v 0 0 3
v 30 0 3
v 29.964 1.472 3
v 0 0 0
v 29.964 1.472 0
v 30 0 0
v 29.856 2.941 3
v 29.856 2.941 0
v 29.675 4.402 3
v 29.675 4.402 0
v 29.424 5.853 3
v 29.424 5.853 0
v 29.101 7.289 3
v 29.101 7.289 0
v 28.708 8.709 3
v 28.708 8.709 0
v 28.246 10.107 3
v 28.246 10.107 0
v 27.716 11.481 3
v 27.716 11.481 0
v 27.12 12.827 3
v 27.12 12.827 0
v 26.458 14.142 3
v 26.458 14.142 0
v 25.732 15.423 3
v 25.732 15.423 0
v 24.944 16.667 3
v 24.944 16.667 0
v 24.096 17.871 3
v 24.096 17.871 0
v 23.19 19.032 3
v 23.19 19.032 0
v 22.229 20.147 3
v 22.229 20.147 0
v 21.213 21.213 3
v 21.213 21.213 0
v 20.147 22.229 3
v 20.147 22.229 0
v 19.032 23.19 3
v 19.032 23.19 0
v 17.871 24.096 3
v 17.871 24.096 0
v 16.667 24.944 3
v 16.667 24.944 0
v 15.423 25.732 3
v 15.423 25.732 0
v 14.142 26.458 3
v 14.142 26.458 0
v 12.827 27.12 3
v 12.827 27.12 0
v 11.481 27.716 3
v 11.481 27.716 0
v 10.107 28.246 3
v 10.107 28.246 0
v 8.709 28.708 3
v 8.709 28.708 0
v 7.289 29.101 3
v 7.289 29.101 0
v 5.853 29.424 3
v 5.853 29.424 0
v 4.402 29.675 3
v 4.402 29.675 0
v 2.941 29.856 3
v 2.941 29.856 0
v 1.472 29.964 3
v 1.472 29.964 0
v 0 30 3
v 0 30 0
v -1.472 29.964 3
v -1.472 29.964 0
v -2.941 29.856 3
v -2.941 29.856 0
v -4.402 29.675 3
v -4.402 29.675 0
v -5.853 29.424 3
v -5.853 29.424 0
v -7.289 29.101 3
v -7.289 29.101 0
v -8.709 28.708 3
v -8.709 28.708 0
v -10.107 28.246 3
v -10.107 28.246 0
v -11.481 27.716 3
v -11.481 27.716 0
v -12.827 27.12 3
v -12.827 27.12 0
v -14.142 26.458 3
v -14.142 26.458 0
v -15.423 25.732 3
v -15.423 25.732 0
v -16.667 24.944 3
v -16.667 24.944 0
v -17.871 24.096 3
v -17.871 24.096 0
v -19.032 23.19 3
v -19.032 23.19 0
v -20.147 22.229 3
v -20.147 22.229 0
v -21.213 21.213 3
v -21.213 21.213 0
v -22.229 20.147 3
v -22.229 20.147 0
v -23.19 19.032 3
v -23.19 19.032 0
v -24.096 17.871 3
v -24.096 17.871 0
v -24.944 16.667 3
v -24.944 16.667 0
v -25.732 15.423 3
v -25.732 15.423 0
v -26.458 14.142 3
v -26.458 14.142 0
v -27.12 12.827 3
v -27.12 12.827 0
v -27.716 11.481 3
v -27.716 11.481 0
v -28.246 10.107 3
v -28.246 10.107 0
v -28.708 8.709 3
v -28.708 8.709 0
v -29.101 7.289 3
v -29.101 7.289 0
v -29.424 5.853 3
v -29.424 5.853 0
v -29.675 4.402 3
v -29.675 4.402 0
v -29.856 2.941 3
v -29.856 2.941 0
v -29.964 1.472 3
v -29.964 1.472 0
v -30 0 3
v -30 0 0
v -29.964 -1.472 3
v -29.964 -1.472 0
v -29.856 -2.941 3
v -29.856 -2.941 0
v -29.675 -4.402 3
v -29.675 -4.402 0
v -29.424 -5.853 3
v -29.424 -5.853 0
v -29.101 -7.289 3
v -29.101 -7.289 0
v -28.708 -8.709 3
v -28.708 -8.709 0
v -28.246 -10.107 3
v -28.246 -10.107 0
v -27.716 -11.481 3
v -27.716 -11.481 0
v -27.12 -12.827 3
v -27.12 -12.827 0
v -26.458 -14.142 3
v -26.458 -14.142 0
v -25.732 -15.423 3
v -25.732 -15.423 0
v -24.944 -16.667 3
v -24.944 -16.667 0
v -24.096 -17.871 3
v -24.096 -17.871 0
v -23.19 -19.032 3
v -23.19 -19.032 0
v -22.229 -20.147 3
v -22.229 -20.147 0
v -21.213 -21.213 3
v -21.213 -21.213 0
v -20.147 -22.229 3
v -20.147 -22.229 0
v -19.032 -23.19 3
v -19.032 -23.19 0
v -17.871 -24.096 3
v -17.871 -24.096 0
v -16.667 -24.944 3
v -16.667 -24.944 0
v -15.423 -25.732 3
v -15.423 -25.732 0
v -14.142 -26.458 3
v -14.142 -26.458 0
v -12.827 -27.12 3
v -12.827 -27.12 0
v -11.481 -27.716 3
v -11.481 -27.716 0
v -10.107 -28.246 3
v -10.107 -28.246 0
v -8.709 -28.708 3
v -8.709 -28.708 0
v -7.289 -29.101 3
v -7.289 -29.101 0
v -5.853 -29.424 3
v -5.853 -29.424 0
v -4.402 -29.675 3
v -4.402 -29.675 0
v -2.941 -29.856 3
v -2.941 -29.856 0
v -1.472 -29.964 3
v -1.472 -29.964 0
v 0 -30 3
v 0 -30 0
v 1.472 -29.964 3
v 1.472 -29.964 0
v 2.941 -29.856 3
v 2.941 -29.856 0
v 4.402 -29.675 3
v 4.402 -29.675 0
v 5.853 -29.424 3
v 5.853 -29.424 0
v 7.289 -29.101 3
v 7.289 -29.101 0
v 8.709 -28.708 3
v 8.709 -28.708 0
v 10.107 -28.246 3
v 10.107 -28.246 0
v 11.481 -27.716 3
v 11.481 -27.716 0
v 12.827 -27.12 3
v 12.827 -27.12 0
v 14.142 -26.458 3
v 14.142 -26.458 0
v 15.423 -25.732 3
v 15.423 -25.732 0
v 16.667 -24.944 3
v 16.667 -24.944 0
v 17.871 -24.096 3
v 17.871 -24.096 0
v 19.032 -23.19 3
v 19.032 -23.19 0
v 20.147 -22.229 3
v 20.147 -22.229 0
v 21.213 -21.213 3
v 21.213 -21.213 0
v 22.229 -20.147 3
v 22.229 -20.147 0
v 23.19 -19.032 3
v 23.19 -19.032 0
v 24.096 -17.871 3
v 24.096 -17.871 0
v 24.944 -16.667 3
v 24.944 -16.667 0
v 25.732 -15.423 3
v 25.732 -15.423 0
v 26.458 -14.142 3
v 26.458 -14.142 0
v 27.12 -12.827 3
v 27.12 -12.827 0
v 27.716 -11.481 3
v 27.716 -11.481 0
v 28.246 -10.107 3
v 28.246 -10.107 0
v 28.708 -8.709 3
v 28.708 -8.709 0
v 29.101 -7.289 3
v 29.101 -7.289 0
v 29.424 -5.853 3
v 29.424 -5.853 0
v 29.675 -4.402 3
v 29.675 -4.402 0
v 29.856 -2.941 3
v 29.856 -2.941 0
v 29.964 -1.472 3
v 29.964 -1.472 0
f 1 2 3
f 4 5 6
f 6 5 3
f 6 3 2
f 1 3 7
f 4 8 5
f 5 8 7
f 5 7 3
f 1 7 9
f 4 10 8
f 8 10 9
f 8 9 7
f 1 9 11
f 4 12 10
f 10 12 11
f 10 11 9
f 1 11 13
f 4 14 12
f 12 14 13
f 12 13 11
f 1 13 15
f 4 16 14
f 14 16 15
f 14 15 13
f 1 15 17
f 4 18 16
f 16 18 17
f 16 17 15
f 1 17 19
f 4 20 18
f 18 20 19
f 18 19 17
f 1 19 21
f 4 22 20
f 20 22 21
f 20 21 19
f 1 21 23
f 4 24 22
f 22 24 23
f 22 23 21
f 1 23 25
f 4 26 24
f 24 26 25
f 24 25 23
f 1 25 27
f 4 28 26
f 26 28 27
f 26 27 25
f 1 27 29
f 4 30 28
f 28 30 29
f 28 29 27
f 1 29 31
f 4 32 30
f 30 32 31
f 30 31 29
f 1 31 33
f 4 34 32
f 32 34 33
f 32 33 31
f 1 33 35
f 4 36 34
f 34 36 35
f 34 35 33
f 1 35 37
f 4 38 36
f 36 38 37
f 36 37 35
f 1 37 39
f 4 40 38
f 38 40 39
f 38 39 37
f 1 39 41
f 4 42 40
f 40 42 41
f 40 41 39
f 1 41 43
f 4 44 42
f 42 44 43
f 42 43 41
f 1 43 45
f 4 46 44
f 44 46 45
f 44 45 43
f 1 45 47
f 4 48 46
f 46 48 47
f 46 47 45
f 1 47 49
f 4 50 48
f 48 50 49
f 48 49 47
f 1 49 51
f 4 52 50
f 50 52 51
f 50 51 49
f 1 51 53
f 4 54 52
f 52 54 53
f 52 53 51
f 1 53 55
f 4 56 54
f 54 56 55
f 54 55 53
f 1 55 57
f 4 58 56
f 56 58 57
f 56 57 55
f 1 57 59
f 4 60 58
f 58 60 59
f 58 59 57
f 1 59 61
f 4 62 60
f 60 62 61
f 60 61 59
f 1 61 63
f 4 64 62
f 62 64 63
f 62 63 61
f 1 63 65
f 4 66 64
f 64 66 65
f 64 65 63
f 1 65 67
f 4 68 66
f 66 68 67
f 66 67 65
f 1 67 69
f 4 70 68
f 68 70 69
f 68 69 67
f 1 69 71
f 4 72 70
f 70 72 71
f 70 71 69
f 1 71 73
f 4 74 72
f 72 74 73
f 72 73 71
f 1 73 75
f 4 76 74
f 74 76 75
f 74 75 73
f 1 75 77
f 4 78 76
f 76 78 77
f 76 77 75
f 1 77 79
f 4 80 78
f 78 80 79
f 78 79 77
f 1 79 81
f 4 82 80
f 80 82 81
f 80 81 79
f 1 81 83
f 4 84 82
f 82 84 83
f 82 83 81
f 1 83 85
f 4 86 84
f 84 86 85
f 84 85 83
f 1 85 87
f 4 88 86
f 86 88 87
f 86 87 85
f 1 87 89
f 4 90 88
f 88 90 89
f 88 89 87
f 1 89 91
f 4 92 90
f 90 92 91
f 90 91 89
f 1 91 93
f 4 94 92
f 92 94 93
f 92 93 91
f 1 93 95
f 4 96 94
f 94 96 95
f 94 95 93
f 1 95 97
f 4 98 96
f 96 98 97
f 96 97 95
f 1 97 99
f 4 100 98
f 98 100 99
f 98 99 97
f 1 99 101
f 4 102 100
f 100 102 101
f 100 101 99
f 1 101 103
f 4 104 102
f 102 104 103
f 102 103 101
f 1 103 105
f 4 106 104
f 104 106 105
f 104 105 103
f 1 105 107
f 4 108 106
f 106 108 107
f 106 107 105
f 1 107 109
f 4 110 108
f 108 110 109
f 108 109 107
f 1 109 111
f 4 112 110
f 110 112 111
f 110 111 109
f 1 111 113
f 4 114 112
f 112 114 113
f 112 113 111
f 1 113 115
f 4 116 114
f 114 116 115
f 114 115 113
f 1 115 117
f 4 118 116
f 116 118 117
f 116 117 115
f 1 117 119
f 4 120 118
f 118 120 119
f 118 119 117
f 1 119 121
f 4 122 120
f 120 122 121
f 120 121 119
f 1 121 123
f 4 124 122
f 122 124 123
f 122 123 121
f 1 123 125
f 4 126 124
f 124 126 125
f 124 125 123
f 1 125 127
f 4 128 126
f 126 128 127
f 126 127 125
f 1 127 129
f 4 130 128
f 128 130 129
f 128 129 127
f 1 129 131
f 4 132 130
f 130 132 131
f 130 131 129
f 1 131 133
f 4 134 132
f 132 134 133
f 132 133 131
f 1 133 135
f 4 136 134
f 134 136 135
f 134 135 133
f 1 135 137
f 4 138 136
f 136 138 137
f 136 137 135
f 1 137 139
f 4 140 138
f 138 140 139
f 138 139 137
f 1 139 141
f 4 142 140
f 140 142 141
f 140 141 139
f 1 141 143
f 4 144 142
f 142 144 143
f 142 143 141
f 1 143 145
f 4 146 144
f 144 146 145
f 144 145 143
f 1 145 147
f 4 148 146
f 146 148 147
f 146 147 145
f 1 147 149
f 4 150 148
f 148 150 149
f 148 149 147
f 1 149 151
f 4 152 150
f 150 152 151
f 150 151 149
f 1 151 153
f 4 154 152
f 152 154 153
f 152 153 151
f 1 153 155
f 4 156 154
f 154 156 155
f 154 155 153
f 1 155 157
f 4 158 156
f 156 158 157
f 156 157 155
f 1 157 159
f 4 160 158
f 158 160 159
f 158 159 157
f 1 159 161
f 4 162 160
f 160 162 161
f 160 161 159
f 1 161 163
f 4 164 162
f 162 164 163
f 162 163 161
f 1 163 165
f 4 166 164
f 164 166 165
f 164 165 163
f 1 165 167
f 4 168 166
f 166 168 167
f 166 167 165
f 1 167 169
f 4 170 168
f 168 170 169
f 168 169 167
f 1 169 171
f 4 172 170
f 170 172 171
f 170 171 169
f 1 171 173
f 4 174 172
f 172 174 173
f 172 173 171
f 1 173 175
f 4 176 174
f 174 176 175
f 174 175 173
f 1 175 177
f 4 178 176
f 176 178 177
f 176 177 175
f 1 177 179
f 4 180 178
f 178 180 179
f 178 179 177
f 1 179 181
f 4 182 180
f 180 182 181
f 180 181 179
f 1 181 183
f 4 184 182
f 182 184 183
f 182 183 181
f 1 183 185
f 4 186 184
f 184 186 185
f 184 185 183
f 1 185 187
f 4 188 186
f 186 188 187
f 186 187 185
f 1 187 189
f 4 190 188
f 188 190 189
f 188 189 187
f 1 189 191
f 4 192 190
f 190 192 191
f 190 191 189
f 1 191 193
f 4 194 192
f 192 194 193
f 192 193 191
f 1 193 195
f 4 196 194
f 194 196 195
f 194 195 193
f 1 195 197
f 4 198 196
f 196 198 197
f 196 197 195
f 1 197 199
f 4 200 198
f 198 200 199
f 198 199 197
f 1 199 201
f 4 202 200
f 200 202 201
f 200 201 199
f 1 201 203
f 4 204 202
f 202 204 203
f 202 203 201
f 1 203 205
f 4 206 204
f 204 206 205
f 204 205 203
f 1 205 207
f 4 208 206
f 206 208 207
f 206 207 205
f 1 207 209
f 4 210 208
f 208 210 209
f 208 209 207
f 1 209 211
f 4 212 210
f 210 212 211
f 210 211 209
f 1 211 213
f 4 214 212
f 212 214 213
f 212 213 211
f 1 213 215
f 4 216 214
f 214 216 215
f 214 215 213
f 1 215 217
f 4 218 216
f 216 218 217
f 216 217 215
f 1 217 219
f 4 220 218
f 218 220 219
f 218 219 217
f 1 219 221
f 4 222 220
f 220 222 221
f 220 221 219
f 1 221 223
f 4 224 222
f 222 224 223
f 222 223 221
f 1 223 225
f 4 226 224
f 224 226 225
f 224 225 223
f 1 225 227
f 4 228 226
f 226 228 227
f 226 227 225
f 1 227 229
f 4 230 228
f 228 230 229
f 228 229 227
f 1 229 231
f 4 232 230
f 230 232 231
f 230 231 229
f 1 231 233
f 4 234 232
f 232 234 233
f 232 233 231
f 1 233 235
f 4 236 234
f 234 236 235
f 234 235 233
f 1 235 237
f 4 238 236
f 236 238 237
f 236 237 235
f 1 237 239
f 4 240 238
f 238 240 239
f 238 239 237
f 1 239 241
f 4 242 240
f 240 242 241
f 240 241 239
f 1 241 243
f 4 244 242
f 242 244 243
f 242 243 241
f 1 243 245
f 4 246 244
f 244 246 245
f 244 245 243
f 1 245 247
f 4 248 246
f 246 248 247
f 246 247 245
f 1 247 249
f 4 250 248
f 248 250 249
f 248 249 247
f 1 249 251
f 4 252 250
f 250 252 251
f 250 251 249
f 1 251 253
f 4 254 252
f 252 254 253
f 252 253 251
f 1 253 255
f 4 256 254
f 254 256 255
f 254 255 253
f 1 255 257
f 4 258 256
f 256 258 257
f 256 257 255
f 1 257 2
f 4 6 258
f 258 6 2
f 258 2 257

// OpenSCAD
// Support 3D commun aux badges UBI (Conseiller / Chambrier / Garde).
// Forme : medaillon rond simple (la fixation se gere autrement :
//         epingle, broche, aimant, agrafe arriere).
// Le DTF imprime est colle sur la face avant (z = epaisseur).
// Toutes dimensions en millimetres.

// ---- Parametres ---------------------------------------------------------

with_bail     = false; // true = ajouter une beliere d'accroche en haut
diam_med      = 60;    // diametre du medaillon
attache_l     = 6;     // (beliere) largeur du pont d'attache
attache_h     = 1;     // (beliere) hauteur visible de l'attache
diam_bel_ext  = 9;     // (beliere) diametre exterieur
diam_bel_int  = 4.5;   // (beliere) diametre du trou (cordon jusqu'a 3 mm)
epaisseur     = 3;     // epaisseur totale du support
emboit        = 1;     // (beliere) recouvrement attache/medaillon/beliere

$fn = 128;             // resolution des cercles

// ---- Geometrie ----------------------------------------------------------

module support_badge_UBI() {
    r_med  = diam_med / 2;
    r_bel  = diam_bel_ext / 2;
    y_bel  = r_med + attache_h + r_bel;

    union() {
        // Medaillon
        cylinder(h = epaisseur, d = diam_med);

        if (with_bail) {
            // Pont d'attache (chevauche legerement medaillon et beliere)
            translate([-attache_l / 2, r_med - emboit, 0])
                cube([attache_l, attache_h + 2 * emboit, epaisseur]);

            // Beliere : anneau plat
            translate([0, y_bel, 0])
                difference() {
                    cylinder(h = epaisseur, d = diam_bel_ext);
                    translate([0, 0, -0.1])
                        cylinder(h = epaisseur + 0.2, d = diam_bel_int);
                }
        }
    }
}

support_badge_UBI();

// ---- Export ------------------------------------------------------------
// Ouvrir ce fichier dans OpenSCAD, puis :
//   F5 (preview) puis F6 (render) puis "Export as STL".
// Sans beliere : medaillon rond Ø60 mm, epaisseur 3 mm.
// Avec beliere (with_bail = true) : hauteur totale 70 mm.
